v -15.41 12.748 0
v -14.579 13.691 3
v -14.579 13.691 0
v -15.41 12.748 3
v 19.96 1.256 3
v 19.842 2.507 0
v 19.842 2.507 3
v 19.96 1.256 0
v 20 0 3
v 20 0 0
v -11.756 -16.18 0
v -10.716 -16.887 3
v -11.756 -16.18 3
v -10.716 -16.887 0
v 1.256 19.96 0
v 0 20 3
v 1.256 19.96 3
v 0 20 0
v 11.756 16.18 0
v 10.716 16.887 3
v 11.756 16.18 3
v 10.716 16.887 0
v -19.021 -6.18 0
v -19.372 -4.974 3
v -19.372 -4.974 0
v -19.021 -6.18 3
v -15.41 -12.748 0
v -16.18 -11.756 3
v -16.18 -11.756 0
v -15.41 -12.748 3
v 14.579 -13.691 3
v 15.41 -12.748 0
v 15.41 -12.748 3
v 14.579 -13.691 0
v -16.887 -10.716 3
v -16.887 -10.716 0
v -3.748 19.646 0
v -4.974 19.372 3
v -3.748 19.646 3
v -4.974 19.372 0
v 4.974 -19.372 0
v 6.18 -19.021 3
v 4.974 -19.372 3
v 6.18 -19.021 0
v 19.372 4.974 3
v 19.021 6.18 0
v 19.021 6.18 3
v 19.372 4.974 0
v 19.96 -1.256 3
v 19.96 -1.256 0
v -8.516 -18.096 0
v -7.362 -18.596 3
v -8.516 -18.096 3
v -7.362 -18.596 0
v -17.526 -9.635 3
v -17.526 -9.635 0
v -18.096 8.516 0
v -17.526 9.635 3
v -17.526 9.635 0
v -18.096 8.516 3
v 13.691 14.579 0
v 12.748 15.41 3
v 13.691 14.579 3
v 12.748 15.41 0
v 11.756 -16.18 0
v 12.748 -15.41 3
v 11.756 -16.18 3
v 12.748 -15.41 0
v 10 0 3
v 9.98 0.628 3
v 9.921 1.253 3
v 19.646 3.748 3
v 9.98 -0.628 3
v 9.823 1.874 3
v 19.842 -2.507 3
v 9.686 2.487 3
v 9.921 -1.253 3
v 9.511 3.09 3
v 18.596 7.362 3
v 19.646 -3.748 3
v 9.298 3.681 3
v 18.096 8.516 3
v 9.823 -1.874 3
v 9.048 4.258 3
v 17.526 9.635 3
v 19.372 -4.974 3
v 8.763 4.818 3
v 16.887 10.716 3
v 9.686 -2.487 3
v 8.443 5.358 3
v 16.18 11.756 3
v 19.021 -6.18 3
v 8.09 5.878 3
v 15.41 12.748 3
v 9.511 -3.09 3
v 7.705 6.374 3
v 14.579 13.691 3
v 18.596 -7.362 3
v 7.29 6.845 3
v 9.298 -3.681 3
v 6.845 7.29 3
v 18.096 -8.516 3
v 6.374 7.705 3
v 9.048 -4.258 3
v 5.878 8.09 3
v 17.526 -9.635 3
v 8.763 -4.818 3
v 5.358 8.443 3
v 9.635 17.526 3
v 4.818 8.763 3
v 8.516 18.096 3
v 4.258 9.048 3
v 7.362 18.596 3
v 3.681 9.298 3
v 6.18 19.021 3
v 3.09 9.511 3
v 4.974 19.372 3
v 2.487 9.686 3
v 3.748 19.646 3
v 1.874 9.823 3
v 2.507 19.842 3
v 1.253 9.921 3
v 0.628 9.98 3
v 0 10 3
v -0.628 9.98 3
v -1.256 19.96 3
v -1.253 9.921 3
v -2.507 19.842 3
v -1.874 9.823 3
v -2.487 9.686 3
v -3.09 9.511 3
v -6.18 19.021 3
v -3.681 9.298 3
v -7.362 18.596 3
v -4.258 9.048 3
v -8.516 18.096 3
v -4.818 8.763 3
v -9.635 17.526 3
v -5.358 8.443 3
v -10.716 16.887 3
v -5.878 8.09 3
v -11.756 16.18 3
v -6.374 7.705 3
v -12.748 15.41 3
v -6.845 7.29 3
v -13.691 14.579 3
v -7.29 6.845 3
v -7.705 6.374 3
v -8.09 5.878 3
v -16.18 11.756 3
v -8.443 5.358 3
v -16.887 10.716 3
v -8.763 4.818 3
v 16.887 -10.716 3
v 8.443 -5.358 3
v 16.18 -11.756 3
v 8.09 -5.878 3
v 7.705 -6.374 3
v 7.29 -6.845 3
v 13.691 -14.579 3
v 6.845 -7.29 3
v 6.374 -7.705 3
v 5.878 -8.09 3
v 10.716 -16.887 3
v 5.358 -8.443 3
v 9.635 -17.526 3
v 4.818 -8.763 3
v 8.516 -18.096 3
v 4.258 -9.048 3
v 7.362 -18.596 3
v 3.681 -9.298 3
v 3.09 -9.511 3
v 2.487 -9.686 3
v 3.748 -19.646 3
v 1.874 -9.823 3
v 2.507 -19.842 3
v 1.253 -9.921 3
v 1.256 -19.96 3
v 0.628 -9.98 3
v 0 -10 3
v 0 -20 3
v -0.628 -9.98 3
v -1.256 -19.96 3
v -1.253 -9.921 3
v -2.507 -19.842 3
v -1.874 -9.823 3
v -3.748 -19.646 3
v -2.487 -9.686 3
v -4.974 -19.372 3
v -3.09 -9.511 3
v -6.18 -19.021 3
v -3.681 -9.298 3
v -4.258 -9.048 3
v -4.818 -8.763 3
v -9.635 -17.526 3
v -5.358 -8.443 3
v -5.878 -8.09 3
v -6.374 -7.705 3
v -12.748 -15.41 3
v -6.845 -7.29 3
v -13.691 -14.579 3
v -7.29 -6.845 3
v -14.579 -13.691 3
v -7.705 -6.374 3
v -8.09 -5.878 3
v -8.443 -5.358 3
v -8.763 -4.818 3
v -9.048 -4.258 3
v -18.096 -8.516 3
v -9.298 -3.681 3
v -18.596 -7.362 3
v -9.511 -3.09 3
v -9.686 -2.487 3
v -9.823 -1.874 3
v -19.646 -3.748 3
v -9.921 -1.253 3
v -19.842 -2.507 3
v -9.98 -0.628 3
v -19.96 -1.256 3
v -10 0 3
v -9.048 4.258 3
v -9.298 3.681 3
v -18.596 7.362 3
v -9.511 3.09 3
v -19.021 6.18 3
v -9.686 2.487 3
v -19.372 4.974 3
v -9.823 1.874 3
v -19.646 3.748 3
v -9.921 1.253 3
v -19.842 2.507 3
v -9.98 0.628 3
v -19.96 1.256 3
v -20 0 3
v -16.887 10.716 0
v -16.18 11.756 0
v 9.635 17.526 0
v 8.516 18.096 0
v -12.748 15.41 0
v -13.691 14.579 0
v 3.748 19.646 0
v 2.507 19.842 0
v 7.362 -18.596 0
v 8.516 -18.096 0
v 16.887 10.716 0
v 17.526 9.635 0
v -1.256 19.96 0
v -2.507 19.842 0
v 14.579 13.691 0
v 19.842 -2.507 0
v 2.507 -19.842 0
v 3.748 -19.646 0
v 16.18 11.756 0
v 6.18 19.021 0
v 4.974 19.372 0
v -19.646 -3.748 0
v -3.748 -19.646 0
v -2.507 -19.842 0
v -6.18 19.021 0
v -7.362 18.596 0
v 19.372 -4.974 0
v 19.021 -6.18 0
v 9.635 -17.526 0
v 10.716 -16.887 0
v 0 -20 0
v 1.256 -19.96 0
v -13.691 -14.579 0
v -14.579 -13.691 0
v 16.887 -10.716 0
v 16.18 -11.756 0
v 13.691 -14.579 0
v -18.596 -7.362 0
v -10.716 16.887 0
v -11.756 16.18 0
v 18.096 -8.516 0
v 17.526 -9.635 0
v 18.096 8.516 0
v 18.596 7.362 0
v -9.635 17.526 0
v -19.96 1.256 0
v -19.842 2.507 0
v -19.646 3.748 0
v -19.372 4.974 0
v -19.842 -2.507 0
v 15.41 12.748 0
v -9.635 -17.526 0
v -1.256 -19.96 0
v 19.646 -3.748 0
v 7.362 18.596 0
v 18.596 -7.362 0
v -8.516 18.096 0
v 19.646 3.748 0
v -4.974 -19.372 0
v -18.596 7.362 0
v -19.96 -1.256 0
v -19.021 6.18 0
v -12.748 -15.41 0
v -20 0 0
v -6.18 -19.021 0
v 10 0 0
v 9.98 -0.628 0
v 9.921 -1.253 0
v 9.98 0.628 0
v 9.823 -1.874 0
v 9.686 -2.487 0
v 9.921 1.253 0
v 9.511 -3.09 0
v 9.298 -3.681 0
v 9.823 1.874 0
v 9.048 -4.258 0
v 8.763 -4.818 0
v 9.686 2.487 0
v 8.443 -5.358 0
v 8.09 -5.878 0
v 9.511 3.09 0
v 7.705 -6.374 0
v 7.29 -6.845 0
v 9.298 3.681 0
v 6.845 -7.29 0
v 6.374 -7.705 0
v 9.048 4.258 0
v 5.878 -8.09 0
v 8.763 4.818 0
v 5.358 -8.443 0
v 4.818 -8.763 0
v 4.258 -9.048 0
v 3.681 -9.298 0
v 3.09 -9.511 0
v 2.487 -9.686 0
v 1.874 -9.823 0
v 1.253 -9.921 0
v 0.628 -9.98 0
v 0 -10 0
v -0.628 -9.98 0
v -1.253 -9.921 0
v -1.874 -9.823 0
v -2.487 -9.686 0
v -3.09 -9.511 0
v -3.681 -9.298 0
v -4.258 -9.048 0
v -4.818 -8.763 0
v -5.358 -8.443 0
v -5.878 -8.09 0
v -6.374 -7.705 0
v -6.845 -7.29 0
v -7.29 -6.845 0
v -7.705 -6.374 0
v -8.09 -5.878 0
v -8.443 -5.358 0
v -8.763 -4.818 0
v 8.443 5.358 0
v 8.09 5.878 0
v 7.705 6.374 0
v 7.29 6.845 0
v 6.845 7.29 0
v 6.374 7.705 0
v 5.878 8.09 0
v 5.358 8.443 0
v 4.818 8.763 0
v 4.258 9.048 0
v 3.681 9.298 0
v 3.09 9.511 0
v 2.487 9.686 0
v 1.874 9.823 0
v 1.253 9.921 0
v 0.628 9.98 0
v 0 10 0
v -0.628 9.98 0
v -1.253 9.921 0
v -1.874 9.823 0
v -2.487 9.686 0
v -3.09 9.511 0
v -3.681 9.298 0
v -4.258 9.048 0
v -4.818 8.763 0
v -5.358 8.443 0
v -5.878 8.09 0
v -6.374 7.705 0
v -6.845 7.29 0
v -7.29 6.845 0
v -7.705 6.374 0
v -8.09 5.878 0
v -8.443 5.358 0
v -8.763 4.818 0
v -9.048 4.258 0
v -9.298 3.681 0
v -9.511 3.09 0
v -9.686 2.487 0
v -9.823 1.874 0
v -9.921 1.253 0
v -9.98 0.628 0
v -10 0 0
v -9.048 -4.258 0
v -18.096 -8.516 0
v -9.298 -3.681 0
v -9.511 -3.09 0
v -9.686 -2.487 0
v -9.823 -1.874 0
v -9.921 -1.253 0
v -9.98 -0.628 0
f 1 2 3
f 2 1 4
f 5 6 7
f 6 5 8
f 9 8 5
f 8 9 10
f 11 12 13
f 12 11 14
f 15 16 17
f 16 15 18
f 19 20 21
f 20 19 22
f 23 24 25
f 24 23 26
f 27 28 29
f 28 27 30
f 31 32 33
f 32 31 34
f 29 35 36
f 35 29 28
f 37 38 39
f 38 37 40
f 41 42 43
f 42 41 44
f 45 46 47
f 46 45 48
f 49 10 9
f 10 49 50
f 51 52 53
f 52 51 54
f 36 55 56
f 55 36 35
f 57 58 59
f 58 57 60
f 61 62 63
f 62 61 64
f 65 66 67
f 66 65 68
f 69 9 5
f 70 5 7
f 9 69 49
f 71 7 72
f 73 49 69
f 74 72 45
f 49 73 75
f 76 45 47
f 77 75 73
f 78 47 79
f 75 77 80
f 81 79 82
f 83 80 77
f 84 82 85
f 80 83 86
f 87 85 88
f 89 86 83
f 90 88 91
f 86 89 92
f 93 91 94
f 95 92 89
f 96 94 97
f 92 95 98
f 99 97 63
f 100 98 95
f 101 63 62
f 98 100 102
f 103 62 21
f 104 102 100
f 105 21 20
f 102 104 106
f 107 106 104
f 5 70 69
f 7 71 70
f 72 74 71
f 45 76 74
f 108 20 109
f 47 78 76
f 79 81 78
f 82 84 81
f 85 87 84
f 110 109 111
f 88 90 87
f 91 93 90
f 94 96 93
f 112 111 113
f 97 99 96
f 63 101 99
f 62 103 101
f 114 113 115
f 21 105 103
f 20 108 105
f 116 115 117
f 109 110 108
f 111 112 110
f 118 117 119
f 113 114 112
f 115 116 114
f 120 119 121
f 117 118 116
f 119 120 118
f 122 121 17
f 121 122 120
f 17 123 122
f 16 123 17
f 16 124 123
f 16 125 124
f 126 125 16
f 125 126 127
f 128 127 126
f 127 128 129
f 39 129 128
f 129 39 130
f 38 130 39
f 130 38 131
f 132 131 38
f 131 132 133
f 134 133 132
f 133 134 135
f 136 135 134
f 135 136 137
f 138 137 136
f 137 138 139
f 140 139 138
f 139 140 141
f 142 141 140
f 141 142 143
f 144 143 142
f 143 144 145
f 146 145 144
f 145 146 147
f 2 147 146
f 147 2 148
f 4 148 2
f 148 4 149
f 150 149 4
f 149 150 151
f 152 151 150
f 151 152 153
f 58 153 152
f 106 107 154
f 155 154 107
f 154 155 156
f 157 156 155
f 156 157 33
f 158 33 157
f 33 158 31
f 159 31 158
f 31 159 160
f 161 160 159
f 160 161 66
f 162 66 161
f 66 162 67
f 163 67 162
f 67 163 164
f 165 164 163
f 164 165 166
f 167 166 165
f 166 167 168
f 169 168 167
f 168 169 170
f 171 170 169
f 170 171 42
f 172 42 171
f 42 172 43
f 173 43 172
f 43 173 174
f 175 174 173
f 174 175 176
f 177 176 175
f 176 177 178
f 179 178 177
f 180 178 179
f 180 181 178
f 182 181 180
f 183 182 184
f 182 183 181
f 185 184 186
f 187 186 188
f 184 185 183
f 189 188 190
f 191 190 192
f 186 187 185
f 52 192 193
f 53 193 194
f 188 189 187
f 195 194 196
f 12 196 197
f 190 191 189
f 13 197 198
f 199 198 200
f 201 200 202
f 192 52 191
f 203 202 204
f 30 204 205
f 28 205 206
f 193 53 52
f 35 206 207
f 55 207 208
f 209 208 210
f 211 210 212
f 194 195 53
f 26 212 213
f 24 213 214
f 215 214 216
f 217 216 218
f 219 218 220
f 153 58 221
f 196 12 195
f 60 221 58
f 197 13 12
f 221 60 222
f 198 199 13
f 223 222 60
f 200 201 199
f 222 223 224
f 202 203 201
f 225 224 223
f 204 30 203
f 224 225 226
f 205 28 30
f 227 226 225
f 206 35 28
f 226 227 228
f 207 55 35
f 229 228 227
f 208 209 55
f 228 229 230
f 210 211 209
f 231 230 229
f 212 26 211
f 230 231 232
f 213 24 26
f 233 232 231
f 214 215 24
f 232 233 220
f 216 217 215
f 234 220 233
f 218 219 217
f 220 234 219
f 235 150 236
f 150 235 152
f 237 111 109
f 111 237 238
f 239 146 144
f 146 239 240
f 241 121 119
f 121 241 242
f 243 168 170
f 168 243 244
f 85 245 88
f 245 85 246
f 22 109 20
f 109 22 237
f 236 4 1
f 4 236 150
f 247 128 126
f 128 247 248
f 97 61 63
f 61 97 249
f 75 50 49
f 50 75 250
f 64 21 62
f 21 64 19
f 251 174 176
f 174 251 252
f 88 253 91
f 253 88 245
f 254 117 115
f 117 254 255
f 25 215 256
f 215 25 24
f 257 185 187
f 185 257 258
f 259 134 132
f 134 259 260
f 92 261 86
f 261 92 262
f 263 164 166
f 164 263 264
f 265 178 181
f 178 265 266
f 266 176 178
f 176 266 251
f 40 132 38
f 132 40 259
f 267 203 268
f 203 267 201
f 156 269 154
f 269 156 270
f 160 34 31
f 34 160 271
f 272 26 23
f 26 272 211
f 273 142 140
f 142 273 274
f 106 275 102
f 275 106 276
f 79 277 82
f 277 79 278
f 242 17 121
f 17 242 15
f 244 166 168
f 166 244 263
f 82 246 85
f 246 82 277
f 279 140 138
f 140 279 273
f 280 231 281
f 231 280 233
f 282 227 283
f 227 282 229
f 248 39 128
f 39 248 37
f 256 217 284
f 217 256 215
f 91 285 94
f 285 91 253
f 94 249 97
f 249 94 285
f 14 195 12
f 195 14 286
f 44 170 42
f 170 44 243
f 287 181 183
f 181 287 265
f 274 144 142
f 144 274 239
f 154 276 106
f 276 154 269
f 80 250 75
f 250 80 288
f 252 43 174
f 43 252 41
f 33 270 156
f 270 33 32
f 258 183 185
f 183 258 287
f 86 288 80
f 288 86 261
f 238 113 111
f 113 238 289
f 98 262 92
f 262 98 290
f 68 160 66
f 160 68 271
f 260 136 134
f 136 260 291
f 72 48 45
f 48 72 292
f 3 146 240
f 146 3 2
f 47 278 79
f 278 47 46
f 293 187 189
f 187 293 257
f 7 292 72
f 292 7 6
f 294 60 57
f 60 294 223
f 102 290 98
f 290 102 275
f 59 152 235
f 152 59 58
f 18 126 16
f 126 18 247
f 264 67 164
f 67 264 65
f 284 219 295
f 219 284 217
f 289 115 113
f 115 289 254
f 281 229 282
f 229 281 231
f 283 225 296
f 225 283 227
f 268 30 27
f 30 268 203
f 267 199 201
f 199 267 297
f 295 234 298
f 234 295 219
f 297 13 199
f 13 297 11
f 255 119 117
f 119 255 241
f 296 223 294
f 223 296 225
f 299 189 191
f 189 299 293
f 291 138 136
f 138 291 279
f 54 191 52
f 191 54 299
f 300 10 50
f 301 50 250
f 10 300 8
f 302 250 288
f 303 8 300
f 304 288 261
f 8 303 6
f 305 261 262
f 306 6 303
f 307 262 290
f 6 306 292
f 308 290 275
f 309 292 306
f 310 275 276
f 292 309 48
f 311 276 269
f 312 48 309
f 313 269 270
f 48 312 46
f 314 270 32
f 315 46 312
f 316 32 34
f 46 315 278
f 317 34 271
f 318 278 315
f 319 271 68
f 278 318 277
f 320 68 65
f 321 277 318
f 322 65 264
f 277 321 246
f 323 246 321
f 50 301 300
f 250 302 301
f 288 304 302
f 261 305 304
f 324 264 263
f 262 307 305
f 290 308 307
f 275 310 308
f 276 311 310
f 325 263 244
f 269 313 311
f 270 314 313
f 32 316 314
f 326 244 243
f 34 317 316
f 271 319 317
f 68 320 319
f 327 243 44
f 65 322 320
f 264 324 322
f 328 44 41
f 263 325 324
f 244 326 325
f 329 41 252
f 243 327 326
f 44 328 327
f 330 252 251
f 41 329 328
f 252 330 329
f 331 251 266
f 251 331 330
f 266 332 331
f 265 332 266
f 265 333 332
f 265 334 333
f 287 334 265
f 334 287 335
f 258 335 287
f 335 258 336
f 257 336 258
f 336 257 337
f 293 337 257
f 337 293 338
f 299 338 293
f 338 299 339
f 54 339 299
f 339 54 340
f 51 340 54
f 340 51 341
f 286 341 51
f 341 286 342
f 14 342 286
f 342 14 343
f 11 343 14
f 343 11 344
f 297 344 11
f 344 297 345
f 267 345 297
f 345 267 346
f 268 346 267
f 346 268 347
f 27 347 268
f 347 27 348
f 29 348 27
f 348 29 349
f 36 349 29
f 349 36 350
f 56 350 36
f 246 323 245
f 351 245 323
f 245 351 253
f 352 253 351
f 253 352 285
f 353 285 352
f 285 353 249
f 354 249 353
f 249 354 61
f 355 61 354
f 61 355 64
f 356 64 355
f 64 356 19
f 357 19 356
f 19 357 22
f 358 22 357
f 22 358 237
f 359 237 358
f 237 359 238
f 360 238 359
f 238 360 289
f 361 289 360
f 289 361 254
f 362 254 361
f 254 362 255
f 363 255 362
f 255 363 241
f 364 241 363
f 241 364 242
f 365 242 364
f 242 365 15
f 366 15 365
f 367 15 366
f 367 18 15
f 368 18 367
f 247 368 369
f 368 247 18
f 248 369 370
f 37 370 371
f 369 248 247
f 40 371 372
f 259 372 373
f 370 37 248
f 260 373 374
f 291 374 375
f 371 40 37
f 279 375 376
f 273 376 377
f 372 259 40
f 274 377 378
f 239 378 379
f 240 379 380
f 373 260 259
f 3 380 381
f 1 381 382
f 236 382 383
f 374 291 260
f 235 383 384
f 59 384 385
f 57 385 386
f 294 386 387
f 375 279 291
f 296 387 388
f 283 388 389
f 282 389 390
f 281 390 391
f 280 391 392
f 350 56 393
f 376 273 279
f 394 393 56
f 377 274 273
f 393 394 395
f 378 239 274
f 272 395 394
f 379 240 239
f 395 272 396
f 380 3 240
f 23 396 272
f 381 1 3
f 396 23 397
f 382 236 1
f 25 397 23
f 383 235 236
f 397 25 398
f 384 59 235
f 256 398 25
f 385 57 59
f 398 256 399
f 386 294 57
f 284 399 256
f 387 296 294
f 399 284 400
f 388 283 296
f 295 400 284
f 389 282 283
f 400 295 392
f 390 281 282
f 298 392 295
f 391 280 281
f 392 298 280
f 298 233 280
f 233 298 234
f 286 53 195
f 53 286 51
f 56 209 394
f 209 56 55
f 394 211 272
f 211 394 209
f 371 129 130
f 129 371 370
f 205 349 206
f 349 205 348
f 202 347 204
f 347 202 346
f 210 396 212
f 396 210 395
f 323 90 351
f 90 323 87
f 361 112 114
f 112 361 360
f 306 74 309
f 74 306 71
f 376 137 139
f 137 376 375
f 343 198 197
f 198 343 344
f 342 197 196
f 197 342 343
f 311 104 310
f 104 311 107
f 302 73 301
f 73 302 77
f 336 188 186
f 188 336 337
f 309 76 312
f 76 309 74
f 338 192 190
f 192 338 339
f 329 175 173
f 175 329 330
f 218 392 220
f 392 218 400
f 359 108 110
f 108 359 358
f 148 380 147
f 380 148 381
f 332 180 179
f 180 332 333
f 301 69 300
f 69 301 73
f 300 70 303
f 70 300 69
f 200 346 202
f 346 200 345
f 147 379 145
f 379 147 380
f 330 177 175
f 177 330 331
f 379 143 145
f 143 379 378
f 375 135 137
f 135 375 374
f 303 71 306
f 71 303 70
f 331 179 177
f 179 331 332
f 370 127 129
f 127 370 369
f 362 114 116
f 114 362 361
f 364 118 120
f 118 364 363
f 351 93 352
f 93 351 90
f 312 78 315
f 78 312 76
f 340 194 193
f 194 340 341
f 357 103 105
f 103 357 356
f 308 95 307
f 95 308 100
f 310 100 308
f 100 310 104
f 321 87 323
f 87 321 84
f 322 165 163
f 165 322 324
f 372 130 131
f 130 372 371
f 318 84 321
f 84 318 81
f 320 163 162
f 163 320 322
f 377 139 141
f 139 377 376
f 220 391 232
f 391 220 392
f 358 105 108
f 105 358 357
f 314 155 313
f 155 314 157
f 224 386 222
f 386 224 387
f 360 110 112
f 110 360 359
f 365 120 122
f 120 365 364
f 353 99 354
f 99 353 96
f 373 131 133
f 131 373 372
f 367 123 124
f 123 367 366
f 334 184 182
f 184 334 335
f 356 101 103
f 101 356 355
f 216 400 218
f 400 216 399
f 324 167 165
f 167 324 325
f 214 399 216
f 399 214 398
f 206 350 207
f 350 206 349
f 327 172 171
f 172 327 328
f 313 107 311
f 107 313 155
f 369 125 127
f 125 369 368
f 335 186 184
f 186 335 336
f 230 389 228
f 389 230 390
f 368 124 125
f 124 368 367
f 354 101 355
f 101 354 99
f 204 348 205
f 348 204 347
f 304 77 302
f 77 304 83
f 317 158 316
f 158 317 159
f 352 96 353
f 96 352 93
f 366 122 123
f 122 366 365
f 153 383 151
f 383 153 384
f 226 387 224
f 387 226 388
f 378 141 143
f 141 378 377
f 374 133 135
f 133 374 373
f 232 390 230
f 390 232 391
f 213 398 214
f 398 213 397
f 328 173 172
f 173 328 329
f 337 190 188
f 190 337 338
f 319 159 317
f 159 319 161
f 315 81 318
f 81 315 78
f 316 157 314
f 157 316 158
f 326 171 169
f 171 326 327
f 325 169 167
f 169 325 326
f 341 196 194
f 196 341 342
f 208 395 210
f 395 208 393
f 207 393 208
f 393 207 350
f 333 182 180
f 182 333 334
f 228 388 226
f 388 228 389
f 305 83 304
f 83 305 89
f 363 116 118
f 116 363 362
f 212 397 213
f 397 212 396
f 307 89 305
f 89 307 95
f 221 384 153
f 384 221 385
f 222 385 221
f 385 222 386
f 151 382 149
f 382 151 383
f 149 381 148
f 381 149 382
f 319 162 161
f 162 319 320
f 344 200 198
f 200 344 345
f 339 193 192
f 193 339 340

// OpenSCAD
// Parameters for the spacer_ring
ring_outer_diameter = 40; // Outer diameter of the ring
ring_inner_diameter = 20; // Inner diameter of the ring
ring_thickness = 3;       // Adjusted thickness of the ring to match the original model

// Spacer Ring Module
module spacer_ring() {
    difference() {
        // Outer cylinder
        cylinder(h = ring_thickness, d = ring_outer_diameter, $fn = 100);
        // Inner cylinder (hole)
        translate([0, 0, -1]) // Slightly offset to ensure clean subtraction
        cylinder(h = ring_thickness + 2, d = ring_inner_diameter, $fn = 100);
    }
}

// Render the spacer_ring
spacer_ring();
